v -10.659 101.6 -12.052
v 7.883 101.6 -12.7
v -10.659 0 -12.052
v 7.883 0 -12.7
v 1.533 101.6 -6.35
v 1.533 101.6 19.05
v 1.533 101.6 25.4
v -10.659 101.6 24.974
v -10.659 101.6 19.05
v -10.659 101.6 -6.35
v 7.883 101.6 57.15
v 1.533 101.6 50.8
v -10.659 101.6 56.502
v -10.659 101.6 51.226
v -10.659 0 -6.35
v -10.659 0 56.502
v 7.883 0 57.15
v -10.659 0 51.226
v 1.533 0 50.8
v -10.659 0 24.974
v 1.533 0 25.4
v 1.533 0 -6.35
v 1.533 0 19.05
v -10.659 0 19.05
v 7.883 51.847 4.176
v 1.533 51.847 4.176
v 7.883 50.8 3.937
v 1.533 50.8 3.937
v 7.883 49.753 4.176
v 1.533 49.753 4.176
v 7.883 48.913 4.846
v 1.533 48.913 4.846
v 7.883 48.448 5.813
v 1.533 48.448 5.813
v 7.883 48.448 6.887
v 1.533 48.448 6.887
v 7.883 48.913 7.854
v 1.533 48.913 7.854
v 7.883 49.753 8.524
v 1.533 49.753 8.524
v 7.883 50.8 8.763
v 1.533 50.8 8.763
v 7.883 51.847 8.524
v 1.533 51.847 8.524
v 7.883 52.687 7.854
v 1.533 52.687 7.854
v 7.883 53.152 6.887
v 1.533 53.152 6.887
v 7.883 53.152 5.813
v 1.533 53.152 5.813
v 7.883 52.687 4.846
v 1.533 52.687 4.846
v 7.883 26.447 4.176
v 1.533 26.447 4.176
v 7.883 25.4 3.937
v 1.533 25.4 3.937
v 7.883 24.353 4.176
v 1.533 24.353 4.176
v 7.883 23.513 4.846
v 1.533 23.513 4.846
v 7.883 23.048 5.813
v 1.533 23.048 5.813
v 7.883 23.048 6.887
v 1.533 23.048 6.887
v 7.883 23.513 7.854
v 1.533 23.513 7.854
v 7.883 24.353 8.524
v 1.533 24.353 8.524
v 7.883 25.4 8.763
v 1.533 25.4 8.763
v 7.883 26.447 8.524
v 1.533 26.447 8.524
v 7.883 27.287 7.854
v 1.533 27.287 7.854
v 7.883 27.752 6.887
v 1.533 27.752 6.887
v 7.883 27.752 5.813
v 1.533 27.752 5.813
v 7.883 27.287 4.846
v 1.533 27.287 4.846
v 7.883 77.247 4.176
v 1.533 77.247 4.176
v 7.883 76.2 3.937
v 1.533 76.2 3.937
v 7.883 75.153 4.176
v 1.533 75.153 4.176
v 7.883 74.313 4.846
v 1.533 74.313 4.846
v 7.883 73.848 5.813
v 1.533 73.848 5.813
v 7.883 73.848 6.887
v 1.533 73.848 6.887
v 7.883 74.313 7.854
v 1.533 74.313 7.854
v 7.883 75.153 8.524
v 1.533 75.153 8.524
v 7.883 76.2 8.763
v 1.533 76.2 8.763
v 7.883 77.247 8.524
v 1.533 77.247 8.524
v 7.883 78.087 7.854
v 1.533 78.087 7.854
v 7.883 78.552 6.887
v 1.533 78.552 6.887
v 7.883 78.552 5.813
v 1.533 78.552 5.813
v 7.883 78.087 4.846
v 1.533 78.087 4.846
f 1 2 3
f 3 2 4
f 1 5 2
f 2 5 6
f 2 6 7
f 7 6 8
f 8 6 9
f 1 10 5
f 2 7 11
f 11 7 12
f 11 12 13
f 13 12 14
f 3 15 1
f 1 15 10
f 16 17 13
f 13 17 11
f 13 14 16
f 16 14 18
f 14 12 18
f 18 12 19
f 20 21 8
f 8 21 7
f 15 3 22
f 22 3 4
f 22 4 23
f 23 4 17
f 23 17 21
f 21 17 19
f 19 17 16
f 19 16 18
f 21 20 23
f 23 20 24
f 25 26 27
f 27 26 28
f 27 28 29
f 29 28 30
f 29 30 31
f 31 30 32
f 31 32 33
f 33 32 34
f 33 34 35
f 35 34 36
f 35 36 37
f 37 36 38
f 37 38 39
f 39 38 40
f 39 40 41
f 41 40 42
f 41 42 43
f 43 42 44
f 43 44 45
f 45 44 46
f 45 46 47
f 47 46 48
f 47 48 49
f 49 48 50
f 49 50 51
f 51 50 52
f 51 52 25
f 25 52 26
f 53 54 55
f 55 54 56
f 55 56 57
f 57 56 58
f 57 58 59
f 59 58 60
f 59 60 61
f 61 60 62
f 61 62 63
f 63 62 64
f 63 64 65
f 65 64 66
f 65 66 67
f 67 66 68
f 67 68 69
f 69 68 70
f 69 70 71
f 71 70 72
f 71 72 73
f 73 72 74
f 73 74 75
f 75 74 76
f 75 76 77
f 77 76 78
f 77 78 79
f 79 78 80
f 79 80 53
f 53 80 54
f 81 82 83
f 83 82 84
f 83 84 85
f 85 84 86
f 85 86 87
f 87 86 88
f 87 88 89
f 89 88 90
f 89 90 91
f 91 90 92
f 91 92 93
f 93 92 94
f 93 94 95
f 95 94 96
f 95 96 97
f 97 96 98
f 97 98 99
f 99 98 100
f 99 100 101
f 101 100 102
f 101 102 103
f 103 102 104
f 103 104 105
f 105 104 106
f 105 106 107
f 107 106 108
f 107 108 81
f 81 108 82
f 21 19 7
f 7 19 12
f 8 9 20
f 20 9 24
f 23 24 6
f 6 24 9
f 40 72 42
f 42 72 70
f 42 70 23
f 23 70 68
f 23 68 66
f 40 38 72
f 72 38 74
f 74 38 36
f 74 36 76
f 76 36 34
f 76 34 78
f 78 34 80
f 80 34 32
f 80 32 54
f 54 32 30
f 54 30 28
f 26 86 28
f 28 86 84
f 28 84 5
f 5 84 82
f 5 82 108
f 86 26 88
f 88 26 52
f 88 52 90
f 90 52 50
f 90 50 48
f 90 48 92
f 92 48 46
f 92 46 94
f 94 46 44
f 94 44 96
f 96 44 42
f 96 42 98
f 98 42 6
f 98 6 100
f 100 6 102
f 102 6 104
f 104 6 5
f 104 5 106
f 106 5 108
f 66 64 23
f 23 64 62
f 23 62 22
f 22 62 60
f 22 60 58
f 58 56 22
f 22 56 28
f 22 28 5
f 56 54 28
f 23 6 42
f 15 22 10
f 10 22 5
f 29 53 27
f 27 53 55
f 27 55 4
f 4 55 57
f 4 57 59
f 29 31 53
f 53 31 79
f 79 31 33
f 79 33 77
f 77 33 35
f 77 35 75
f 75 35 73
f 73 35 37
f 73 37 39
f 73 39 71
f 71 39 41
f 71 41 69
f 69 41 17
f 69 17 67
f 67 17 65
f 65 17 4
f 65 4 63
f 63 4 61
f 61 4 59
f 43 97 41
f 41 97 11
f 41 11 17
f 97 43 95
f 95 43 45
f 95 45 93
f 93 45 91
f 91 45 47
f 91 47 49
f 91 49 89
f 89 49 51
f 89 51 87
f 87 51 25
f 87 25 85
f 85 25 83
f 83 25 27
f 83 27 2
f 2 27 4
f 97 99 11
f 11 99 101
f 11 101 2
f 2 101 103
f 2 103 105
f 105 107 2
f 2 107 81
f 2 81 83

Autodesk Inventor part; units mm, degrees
ref_plane "YZ Plane" through (0, 0, 0) normal (1, 0, 0) x (0, 1, 0)
ref_plane "XZ Plane" through (0, 0, 0) normal (0, 1, 0) x (-1, 0, 0)
ref_plane "XY Plane" through (0, 0, 0) normal (0, 0, 1) x (1, 0, 0)
sketch "Sketch1" plane through (0, 0, 0) normal (0, 1, 0) x (-1, 0, 0)
  line L0 (10.6592, 57.15) -> (-7.8828, 57.15)
  line L1 (-7.8828, 57.15) -> (-7.8828, -12.7)
  line L2 (-7.8828, -12.7) -> (10.6592, -12.7)
  line L3 (10.6592, 50.8) -> (-1.5328, 50.8)
  line L4 (-1.5328, 50.8) -> (-1.5328, 25.4)
  line L5 (-1.5328, 25.4) -> (10.6592, 25.4)
  line L6 (10.6592, 19.05) -> (-1.5328, 19.05)
  line L7 (-1.5328, 19.05) -> (-1.5328, -6.35)
  line L8 (-1.5328, -6.35) -> (10.6592, -6.35)
  line L9 (10.6592, -12.7) -> (10.6592, -6.35)
  line L10 (10.6592, 19.05) -> (10.6592, 25.4)
  line L11 (10.6592, 50.8) -> (10.6592, 57.15)
  point P0 (0, 0)
  dimension "d0" = 18.542
  dimension "d3" = 6.35
  dimension "d4" = 6.35
  dimension "d5" = 6.35
  dimension "d7" = 0
  dimension "d8" = 25.4
  dimension "d9" = 25.4
  dimension "d25" = 0
  dimension "d26" = 0
extrude "Extrusion1" add sketch "Sketch1" along normal blind 101.6
sketch "Sketch2" plane through (1.5328, 0, -6.35) normal (-1, 0, 0) x (0, 0, 1)
  line L0 (0, 0) -> (0, 101.6) projected
  line L1 (0, 0) -> (25.4, 0) projected
  point P0 (6.35, 0)
  point P1 (12.7, 25.4)
  point P2 (12.7, 50.8)
  point P3 (12.7, 76.2)
  dimension "d12" = 12.7
  dimension "d13" = 25.4
  dimension "d14" = 25.4
  dimension "d15" = 0
  dimension "d16" = 0
  dimension "d17" = 25.4
hole "Hole1" at (1.5328, 25.4, 6.35) at (1.5328, 50.8, 6.35) at (1.5328, 76.2, 6.35) direction (1, 0, 0) diameter 4.826 depth 25.4 tip angle 118
sketch "Sketch3" plane through (0, 101.6, 0) normal (0, 1, 0) x (1, 0, 0)
  line L0 (1.5328, -25.4) -> (-10.7917, -24.9696)
  line L1 (-10.7917, -24.9696) -> (-10.7917, -25.4)
  line L2 (-10.6592, -25.4) -> (1.5328, -25.4) projected
  line L3 (-10.7917, -25.4) -> (1.5328, -25.4)
  point P0 (0, 0)
  dimension "d27" = 2
extrude "Extrusion2" cut sketch "Sketch3" against normal blind 111.125
sketch "Sketch4" plane through (0, 101.6, 0) normal (0, 1, 0) x (1, 0, 0)
  line L0 (1.5328, -50.8) -> (-12.9577, -50.8)
  line L1 (-12.9577, -50.8) -> (-12.9577, -51.306)
  line L2 (-12.9577, -51.306) -> (1.5328, -50.8)
  point P0 (0, 0)
  dimension "d30" = 2
extrude "Extrusion3" cut sketch "Sketch4" against normal blind 119.0625
sketch "Sketch5" plane through (0, 101.6, 0) normal (0, 1, 0) x (1, 0, 0)
  line L0 (-10.6592, -57.15) -> (7.8828, -57.15) projected
  line L1 (7.8828, -57.15) -> (-13.0423, -56.4193)
  line L2 (-13.0423, -56.4193) -> (-13.0009, -57.15)
  line L3 (-13.0009, -57.15) -> (7.8828, -57.15)
  point P0 (0, 0)
  dimension "d33" = 2
extrude "Extrusion4" cut sketch "Sketch5" against normal blind 196.85
sketch "Sketch6" plane through (0, 101.6, 0) normal (0, 1, 0) x (1, 0, 0)
  line L0 (7.8828, 12.7) -> (-10.6592, 12.7) projected
  line L1 (7.8828, 12.7) -> (-16.8119, 12.7)
  line L2 (-16.8119, 12.7) -> (-16.8119, 11.8376)
  line L3 (7.8828, -57.15) -> (7.8828, 12.7) projected
  line L4 (-16.8119, 11.8376) -> (7.8828, 12.7)
  point P0 (0, 0)
  dimension "d36" = 2
extrude "Extrusion5" cut sketch "Sketch6" against normal blind 334.9625
equation "\"d0\" = ElvDelWidth"
equation "\"d3\" = ElvDelFrontTabLength"
equation "\"d4\" = ElvDelMiddleTabLength"
equation "\"d5\" = ElvDelFrontTabLength"
equation "\"d8\" = ElvBeamWidth"
equation "\"d9\" = ElvBeamWidth"
equation "\"d10\" = ElvDelHeight"
equation "\"ElvBeamWidth\" = 25.4"
equation "\"ElvDelWidth\" = 18.542"
equation "\"ElvDelHeight\" = 101.6"
equation "\"ElvDelFrontTabLength\" = 6.35"
equation "\"ElvDelDepth\" = 6.35"
equation "\"d2\" = ElvDelDepth"
equation "\"ElvCrossBeamLength\" = 304.8"
equation "\"ElvFixedBeamLength\" = 990.6"
equation "\"ElvMiddleBeamLength\" = 990.6"
equation "\"ElvFrontBeamLength\" = 990.6"
equation "\"ElvEndEffectLength\" = 431.8"
equation "\"ElvWallWidth\" = 1.5875"
equation "\"ElvTopBeamLength\" = 457.2"
equation "\"ElvHoleFromFront\" = 25.4"
equation "\"ElvHoleFromMid\" = 38.1"
equation "\"ElvHoleFromFixed\" = 50.8"
equation "\"ElvHoleFromBottom\" = 38.1"
equation "\"ElvRivetPlateLength\" = 76.2"
equation "\"ElvDelMiddleTabLength\" = 6.35"
properties part number "ElvDel" material "Acetal Resin, White"
